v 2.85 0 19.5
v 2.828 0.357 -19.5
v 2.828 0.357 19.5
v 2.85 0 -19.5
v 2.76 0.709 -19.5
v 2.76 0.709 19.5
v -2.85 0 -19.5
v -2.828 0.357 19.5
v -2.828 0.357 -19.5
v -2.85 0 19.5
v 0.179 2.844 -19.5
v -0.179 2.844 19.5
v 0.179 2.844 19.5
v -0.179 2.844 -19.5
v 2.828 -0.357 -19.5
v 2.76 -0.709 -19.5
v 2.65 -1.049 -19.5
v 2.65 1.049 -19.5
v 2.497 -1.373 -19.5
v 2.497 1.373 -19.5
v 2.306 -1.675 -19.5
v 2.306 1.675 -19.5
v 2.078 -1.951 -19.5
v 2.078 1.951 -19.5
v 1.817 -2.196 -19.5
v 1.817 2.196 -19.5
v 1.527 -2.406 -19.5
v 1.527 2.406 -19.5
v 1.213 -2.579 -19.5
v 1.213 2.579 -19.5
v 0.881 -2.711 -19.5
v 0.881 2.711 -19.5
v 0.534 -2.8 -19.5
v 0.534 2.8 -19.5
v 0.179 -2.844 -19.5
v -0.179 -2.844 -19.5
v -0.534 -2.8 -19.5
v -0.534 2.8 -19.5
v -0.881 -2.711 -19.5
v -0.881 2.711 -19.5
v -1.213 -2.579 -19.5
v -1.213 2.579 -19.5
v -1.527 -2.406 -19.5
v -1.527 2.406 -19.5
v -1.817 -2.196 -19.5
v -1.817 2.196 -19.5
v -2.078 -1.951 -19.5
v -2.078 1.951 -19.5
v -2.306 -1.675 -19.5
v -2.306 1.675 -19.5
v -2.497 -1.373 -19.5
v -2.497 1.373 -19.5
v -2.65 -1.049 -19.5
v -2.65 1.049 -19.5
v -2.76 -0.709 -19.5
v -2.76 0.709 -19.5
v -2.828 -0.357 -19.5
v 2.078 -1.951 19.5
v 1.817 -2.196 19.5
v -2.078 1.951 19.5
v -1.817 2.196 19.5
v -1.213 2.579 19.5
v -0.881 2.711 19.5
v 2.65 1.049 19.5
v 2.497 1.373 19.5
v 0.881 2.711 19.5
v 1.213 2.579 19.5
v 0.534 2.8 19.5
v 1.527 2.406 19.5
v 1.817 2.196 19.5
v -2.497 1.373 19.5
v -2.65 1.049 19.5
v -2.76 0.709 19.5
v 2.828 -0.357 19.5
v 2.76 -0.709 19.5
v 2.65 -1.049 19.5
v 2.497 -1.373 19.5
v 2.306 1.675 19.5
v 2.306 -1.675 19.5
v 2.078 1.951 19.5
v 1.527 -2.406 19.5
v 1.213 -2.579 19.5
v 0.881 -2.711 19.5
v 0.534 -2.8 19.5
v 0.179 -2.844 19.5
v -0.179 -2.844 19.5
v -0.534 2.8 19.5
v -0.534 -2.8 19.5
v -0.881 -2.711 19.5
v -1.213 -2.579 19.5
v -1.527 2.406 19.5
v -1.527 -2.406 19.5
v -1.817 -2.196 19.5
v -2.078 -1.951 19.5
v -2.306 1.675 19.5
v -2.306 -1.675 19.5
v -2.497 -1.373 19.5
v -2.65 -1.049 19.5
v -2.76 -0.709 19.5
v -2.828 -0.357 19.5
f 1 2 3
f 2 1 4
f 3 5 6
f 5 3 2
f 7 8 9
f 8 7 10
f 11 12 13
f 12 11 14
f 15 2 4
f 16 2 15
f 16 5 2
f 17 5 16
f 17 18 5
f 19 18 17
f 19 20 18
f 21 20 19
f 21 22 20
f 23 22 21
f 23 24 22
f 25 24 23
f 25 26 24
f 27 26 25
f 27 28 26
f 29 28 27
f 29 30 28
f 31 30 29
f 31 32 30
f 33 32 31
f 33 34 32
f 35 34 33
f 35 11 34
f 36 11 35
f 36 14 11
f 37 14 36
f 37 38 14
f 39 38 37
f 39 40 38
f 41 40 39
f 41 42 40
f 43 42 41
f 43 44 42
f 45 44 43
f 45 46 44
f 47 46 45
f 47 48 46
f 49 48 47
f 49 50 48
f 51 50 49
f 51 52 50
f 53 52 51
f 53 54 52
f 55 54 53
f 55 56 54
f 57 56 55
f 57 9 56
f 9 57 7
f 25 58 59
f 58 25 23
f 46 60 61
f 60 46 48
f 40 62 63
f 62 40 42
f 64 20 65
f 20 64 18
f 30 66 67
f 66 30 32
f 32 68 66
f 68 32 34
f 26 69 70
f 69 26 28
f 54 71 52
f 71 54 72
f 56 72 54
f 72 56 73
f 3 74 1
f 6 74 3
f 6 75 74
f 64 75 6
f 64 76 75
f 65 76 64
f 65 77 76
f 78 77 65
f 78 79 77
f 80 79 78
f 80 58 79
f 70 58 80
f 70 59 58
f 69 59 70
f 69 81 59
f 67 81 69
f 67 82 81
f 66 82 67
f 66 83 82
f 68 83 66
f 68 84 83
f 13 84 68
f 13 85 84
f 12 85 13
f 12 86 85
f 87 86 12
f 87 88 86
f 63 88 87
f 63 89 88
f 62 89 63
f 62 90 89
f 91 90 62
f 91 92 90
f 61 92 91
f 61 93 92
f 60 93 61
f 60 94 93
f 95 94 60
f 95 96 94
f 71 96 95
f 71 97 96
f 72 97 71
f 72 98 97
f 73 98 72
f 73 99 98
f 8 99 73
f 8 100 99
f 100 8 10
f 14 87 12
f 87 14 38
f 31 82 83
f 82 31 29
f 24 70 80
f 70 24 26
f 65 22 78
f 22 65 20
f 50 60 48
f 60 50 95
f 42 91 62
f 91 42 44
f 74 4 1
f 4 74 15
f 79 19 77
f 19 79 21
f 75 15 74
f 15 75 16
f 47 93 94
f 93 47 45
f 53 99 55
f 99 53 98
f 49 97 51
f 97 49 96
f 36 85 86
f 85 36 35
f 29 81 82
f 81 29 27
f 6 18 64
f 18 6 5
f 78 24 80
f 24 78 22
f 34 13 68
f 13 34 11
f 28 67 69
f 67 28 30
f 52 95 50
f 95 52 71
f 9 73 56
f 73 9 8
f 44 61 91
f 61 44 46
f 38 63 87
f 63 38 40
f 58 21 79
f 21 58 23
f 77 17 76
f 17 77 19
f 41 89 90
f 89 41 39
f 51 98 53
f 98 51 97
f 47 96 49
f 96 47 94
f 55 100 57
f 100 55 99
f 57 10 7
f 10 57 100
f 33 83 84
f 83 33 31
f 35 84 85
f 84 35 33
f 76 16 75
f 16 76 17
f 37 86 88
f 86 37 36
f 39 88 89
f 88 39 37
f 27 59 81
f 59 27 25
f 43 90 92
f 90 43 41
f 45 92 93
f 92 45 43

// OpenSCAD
$fn = 50;


difference() {
	union() {
		translate(v = [0, 0, -19.5000000000]) {
			cylinder(h = 39, r = 2.8500000000);
		}
	}
	union() {
		translate(v = [0, 0, -100.0000000000]) {
			cylinder(h = 200, r = 0);
		}
	}
}
